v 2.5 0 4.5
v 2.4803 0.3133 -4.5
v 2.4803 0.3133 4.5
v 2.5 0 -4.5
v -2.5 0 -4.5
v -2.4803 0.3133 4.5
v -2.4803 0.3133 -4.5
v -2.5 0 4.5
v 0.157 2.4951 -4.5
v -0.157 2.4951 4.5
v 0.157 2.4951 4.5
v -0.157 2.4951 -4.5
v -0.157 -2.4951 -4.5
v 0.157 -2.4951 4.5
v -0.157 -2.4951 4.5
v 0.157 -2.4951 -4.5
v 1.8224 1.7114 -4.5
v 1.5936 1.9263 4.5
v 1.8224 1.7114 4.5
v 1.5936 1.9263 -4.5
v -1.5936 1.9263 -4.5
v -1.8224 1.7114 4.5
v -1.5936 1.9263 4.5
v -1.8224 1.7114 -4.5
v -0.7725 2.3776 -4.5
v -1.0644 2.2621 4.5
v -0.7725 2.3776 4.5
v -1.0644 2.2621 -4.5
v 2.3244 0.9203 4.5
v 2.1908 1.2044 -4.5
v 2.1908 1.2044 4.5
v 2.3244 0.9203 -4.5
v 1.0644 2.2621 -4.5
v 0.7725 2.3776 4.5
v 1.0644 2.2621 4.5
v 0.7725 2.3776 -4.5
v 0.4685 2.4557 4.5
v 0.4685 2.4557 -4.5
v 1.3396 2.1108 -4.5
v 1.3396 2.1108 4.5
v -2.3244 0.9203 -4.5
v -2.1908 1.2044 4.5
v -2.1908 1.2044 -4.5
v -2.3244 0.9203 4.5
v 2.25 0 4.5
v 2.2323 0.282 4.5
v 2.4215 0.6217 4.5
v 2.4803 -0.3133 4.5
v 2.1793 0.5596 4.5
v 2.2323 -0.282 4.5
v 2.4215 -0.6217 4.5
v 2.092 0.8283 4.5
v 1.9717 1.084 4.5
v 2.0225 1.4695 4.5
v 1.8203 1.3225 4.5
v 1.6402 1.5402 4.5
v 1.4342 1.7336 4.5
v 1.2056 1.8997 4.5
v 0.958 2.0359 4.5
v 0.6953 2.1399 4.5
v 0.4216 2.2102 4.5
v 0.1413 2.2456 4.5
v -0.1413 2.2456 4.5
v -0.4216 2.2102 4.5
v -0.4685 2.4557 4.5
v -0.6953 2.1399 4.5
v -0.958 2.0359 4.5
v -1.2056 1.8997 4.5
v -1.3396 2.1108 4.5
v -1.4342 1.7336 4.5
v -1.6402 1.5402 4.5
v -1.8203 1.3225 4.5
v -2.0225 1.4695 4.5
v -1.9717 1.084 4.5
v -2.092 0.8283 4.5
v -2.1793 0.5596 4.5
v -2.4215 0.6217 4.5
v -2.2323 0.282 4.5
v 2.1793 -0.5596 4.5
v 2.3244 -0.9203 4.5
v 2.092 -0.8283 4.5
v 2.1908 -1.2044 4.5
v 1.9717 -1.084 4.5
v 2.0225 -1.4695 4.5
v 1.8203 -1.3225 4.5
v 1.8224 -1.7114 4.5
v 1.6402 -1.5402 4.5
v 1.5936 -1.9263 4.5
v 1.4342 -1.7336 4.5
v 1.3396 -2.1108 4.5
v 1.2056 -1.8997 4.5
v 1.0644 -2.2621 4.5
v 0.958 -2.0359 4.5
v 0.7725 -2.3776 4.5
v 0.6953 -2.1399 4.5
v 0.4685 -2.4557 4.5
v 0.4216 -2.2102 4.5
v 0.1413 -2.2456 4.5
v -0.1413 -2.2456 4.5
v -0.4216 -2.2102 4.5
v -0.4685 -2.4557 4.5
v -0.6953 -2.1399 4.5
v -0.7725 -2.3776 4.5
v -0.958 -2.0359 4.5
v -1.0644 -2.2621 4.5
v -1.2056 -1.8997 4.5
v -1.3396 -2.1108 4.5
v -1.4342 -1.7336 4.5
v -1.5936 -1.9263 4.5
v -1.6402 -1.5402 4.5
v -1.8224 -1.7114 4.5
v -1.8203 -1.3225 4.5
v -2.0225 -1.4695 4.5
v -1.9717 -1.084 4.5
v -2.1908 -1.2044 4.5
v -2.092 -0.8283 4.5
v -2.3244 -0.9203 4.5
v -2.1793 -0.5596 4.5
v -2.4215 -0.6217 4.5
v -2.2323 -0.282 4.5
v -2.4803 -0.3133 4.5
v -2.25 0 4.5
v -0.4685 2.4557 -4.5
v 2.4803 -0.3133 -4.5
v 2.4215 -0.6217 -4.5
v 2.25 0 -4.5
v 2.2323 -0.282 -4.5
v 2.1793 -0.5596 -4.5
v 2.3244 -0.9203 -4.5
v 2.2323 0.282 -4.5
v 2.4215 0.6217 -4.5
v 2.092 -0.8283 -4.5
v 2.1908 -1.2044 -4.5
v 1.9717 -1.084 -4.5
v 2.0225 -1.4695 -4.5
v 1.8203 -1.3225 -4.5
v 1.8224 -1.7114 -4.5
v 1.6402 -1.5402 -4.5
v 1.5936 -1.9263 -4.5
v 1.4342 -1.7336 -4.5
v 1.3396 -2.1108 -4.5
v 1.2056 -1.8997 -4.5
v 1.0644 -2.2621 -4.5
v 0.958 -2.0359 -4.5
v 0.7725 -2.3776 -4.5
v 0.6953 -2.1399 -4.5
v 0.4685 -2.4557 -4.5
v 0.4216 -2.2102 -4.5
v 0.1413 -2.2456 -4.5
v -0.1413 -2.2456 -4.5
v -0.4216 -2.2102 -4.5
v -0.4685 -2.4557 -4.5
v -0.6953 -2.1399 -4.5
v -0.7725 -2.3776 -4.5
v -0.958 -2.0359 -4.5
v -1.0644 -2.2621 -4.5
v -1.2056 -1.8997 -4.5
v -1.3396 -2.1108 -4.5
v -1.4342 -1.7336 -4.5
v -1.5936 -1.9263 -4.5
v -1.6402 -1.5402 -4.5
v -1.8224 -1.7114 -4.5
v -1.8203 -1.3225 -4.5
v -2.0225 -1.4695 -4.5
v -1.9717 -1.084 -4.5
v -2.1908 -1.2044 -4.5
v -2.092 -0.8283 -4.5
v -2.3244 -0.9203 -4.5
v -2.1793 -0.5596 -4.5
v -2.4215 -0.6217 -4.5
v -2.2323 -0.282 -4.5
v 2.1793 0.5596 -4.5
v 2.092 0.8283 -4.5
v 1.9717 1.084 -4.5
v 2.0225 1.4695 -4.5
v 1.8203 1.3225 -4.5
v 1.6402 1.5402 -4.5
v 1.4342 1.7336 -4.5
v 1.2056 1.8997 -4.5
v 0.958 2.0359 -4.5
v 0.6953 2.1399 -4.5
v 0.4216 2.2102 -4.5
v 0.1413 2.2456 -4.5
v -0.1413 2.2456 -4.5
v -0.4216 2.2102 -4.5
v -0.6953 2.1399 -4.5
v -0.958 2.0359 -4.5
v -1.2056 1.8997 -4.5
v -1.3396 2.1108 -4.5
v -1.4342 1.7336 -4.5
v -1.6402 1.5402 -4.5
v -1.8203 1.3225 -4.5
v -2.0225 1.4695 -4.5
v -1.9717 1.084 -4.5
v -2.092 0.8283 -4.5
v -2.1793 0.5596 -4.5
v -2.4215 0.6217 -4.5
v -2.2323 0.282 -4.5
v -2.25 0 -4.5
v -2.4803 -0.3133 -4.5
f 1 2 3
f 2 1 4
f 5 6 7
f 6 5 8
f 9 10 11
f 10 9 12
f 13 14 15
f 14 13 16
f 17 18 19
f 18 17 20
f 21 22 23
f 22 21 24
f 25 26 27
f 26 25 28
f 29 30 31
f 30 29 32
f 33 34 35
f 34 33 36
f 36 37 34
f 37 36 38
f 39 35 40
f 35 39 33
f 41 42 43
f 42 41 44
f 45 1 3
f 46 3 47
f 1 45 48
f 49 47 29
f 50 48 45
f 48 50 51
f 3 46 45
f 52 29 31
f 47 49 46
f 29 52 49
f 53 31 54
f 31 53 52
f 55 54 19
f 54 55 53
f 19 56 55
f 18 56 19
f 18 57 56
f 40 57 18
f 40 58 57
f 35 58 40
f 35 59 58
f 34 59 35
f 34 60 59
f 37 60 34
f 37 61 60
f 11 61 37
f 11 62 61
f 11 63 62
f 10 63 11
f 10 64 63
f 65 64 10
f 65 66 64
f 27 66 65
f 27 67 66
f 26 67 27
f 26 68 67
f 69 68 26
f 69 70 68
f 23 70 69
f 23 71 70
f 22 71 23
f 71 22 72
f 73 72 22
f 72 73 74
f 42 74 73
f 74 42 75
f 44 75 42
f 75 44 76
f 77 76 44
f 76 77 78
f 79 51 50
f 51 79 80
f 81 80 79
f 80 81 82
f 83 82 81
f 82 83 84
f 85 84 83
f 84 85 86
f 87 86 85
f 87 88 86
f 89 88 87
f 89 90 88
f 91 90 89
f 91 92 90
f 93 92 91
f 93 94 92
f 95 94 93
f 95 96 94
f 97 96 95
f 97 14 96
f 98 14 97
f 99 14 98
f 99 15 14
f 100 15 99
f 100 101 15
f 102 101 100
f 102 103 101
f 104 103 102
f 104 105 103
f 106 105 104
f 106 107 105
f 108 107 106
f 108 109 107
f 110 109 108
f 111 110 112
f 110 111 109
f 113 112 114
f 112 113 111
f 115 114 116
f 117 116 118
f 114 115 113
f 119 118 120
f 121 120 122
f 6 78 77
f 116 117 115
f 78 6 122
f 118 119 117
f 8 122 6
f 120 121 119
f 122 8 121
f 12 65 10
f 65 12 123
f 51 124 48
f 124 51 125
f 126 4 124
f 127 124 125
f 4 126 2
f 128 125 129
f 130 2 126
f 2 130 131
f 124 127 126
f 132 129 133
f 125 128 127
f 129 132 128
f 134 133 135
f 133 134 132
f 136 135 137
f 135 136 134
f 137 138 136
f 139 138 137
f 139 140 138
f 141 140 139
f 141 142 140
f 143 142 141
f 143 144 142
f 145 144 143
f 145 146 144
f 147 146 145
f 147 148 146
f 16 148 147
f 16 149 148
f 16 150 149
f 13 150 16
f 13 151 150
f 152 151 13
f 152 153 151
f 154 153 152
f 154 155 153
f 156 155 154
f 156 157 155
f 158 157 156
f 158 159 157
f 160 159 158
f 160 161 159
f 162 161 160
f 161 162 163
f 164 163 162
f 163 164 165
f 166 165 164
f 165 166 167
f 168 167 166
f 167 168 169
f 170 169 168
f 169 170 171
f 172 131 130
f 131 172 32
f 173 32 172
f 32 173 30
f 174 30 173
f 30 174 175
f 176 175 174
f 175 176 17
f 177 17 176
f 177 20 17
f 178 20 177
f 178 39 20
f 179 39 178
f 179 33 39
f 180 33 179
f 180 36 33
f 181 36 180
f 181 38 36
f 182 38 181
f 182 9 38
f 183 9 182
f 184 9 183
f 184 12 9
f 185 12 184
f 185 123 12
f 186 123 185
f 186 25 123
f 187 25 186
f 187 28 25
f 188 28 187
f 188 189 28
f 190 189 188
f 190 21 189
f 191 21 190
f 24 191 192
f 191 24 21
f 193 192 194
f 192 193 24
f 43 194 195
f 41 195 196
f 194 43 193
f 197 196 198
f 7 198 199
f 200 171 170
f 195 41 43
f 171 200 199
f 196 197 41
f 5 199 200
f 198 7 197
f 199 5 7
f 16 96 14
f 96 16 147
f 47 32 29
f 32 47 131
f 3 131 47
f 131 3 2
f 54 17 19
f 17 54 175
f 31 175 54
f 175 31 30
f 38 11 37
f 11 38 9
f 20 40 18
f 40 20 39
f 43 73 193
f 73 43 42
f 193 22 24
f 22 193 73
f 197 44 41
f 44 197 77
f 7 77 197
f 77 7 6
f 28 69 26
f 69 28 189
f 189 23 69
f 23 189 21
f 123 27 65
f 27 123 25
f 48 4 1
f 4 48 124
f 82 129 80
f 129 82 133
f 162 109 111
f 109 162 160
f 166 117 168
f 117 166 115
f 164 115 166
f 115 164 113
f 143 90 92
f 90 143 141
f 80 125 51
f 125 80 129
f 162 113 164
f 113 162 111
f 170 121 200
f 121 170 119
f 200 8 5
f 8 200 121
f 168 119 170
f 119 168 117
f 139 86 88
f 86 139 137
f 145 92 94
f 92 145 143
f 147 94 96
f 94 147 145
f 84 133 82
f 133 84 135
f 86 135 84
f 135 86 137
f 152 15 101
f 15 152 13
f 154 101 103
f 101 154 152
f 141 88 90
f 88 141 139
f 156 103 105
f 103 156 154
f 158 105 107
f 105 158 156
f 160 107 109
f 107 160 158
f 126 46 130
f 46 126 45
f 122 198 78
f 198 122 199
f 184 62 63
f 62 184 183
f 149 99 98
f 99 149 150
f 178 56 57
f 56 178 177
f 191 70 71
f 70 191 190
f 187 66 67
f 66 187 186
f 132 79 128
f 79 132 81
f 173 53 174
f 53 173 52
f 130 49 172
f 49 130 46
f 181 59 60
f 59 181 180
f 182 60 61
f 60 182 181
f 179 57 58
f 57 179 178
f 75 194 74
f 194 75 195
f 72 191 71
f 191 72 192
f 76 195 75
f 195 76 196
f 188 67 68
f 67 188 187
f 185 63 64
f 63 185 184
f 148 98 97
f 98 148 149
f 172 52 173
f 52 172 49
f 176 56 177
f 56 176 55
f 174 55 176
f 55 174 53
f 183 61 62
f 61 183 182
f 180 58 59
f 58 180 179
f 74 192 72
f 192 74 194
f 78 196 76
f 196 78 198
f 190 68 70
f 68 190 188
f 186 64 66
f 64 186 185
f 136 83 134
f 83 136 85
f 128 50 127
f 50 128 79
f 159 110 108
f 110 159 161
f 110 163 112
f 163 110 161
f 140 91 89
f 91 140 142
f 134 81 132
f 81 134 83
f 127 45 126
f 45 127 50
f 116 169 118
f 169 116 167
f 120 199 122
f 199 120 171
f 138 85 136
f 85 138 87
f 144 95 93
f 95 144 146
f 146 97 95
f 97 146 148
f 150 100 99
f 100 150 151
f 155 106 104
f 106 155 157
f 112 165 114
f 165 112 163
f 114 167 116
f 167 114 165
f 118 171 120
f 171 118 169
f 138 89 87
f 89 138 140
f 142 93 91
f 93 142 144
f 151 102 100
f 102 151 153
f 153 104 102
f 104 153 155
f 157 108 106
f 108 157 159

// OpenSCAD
$fn = 50;


difference() {
	union() {
		translate(v = [0, 0, -4.5000000000]) {
			cylinder(h = 9, r = 2.5000000000);
		}
	}
	union() {
		translate(v = [0, 0, -100.0000000000]) {
			cylinder(h = 200, r = 2.2500000000);
		}
	}
}
